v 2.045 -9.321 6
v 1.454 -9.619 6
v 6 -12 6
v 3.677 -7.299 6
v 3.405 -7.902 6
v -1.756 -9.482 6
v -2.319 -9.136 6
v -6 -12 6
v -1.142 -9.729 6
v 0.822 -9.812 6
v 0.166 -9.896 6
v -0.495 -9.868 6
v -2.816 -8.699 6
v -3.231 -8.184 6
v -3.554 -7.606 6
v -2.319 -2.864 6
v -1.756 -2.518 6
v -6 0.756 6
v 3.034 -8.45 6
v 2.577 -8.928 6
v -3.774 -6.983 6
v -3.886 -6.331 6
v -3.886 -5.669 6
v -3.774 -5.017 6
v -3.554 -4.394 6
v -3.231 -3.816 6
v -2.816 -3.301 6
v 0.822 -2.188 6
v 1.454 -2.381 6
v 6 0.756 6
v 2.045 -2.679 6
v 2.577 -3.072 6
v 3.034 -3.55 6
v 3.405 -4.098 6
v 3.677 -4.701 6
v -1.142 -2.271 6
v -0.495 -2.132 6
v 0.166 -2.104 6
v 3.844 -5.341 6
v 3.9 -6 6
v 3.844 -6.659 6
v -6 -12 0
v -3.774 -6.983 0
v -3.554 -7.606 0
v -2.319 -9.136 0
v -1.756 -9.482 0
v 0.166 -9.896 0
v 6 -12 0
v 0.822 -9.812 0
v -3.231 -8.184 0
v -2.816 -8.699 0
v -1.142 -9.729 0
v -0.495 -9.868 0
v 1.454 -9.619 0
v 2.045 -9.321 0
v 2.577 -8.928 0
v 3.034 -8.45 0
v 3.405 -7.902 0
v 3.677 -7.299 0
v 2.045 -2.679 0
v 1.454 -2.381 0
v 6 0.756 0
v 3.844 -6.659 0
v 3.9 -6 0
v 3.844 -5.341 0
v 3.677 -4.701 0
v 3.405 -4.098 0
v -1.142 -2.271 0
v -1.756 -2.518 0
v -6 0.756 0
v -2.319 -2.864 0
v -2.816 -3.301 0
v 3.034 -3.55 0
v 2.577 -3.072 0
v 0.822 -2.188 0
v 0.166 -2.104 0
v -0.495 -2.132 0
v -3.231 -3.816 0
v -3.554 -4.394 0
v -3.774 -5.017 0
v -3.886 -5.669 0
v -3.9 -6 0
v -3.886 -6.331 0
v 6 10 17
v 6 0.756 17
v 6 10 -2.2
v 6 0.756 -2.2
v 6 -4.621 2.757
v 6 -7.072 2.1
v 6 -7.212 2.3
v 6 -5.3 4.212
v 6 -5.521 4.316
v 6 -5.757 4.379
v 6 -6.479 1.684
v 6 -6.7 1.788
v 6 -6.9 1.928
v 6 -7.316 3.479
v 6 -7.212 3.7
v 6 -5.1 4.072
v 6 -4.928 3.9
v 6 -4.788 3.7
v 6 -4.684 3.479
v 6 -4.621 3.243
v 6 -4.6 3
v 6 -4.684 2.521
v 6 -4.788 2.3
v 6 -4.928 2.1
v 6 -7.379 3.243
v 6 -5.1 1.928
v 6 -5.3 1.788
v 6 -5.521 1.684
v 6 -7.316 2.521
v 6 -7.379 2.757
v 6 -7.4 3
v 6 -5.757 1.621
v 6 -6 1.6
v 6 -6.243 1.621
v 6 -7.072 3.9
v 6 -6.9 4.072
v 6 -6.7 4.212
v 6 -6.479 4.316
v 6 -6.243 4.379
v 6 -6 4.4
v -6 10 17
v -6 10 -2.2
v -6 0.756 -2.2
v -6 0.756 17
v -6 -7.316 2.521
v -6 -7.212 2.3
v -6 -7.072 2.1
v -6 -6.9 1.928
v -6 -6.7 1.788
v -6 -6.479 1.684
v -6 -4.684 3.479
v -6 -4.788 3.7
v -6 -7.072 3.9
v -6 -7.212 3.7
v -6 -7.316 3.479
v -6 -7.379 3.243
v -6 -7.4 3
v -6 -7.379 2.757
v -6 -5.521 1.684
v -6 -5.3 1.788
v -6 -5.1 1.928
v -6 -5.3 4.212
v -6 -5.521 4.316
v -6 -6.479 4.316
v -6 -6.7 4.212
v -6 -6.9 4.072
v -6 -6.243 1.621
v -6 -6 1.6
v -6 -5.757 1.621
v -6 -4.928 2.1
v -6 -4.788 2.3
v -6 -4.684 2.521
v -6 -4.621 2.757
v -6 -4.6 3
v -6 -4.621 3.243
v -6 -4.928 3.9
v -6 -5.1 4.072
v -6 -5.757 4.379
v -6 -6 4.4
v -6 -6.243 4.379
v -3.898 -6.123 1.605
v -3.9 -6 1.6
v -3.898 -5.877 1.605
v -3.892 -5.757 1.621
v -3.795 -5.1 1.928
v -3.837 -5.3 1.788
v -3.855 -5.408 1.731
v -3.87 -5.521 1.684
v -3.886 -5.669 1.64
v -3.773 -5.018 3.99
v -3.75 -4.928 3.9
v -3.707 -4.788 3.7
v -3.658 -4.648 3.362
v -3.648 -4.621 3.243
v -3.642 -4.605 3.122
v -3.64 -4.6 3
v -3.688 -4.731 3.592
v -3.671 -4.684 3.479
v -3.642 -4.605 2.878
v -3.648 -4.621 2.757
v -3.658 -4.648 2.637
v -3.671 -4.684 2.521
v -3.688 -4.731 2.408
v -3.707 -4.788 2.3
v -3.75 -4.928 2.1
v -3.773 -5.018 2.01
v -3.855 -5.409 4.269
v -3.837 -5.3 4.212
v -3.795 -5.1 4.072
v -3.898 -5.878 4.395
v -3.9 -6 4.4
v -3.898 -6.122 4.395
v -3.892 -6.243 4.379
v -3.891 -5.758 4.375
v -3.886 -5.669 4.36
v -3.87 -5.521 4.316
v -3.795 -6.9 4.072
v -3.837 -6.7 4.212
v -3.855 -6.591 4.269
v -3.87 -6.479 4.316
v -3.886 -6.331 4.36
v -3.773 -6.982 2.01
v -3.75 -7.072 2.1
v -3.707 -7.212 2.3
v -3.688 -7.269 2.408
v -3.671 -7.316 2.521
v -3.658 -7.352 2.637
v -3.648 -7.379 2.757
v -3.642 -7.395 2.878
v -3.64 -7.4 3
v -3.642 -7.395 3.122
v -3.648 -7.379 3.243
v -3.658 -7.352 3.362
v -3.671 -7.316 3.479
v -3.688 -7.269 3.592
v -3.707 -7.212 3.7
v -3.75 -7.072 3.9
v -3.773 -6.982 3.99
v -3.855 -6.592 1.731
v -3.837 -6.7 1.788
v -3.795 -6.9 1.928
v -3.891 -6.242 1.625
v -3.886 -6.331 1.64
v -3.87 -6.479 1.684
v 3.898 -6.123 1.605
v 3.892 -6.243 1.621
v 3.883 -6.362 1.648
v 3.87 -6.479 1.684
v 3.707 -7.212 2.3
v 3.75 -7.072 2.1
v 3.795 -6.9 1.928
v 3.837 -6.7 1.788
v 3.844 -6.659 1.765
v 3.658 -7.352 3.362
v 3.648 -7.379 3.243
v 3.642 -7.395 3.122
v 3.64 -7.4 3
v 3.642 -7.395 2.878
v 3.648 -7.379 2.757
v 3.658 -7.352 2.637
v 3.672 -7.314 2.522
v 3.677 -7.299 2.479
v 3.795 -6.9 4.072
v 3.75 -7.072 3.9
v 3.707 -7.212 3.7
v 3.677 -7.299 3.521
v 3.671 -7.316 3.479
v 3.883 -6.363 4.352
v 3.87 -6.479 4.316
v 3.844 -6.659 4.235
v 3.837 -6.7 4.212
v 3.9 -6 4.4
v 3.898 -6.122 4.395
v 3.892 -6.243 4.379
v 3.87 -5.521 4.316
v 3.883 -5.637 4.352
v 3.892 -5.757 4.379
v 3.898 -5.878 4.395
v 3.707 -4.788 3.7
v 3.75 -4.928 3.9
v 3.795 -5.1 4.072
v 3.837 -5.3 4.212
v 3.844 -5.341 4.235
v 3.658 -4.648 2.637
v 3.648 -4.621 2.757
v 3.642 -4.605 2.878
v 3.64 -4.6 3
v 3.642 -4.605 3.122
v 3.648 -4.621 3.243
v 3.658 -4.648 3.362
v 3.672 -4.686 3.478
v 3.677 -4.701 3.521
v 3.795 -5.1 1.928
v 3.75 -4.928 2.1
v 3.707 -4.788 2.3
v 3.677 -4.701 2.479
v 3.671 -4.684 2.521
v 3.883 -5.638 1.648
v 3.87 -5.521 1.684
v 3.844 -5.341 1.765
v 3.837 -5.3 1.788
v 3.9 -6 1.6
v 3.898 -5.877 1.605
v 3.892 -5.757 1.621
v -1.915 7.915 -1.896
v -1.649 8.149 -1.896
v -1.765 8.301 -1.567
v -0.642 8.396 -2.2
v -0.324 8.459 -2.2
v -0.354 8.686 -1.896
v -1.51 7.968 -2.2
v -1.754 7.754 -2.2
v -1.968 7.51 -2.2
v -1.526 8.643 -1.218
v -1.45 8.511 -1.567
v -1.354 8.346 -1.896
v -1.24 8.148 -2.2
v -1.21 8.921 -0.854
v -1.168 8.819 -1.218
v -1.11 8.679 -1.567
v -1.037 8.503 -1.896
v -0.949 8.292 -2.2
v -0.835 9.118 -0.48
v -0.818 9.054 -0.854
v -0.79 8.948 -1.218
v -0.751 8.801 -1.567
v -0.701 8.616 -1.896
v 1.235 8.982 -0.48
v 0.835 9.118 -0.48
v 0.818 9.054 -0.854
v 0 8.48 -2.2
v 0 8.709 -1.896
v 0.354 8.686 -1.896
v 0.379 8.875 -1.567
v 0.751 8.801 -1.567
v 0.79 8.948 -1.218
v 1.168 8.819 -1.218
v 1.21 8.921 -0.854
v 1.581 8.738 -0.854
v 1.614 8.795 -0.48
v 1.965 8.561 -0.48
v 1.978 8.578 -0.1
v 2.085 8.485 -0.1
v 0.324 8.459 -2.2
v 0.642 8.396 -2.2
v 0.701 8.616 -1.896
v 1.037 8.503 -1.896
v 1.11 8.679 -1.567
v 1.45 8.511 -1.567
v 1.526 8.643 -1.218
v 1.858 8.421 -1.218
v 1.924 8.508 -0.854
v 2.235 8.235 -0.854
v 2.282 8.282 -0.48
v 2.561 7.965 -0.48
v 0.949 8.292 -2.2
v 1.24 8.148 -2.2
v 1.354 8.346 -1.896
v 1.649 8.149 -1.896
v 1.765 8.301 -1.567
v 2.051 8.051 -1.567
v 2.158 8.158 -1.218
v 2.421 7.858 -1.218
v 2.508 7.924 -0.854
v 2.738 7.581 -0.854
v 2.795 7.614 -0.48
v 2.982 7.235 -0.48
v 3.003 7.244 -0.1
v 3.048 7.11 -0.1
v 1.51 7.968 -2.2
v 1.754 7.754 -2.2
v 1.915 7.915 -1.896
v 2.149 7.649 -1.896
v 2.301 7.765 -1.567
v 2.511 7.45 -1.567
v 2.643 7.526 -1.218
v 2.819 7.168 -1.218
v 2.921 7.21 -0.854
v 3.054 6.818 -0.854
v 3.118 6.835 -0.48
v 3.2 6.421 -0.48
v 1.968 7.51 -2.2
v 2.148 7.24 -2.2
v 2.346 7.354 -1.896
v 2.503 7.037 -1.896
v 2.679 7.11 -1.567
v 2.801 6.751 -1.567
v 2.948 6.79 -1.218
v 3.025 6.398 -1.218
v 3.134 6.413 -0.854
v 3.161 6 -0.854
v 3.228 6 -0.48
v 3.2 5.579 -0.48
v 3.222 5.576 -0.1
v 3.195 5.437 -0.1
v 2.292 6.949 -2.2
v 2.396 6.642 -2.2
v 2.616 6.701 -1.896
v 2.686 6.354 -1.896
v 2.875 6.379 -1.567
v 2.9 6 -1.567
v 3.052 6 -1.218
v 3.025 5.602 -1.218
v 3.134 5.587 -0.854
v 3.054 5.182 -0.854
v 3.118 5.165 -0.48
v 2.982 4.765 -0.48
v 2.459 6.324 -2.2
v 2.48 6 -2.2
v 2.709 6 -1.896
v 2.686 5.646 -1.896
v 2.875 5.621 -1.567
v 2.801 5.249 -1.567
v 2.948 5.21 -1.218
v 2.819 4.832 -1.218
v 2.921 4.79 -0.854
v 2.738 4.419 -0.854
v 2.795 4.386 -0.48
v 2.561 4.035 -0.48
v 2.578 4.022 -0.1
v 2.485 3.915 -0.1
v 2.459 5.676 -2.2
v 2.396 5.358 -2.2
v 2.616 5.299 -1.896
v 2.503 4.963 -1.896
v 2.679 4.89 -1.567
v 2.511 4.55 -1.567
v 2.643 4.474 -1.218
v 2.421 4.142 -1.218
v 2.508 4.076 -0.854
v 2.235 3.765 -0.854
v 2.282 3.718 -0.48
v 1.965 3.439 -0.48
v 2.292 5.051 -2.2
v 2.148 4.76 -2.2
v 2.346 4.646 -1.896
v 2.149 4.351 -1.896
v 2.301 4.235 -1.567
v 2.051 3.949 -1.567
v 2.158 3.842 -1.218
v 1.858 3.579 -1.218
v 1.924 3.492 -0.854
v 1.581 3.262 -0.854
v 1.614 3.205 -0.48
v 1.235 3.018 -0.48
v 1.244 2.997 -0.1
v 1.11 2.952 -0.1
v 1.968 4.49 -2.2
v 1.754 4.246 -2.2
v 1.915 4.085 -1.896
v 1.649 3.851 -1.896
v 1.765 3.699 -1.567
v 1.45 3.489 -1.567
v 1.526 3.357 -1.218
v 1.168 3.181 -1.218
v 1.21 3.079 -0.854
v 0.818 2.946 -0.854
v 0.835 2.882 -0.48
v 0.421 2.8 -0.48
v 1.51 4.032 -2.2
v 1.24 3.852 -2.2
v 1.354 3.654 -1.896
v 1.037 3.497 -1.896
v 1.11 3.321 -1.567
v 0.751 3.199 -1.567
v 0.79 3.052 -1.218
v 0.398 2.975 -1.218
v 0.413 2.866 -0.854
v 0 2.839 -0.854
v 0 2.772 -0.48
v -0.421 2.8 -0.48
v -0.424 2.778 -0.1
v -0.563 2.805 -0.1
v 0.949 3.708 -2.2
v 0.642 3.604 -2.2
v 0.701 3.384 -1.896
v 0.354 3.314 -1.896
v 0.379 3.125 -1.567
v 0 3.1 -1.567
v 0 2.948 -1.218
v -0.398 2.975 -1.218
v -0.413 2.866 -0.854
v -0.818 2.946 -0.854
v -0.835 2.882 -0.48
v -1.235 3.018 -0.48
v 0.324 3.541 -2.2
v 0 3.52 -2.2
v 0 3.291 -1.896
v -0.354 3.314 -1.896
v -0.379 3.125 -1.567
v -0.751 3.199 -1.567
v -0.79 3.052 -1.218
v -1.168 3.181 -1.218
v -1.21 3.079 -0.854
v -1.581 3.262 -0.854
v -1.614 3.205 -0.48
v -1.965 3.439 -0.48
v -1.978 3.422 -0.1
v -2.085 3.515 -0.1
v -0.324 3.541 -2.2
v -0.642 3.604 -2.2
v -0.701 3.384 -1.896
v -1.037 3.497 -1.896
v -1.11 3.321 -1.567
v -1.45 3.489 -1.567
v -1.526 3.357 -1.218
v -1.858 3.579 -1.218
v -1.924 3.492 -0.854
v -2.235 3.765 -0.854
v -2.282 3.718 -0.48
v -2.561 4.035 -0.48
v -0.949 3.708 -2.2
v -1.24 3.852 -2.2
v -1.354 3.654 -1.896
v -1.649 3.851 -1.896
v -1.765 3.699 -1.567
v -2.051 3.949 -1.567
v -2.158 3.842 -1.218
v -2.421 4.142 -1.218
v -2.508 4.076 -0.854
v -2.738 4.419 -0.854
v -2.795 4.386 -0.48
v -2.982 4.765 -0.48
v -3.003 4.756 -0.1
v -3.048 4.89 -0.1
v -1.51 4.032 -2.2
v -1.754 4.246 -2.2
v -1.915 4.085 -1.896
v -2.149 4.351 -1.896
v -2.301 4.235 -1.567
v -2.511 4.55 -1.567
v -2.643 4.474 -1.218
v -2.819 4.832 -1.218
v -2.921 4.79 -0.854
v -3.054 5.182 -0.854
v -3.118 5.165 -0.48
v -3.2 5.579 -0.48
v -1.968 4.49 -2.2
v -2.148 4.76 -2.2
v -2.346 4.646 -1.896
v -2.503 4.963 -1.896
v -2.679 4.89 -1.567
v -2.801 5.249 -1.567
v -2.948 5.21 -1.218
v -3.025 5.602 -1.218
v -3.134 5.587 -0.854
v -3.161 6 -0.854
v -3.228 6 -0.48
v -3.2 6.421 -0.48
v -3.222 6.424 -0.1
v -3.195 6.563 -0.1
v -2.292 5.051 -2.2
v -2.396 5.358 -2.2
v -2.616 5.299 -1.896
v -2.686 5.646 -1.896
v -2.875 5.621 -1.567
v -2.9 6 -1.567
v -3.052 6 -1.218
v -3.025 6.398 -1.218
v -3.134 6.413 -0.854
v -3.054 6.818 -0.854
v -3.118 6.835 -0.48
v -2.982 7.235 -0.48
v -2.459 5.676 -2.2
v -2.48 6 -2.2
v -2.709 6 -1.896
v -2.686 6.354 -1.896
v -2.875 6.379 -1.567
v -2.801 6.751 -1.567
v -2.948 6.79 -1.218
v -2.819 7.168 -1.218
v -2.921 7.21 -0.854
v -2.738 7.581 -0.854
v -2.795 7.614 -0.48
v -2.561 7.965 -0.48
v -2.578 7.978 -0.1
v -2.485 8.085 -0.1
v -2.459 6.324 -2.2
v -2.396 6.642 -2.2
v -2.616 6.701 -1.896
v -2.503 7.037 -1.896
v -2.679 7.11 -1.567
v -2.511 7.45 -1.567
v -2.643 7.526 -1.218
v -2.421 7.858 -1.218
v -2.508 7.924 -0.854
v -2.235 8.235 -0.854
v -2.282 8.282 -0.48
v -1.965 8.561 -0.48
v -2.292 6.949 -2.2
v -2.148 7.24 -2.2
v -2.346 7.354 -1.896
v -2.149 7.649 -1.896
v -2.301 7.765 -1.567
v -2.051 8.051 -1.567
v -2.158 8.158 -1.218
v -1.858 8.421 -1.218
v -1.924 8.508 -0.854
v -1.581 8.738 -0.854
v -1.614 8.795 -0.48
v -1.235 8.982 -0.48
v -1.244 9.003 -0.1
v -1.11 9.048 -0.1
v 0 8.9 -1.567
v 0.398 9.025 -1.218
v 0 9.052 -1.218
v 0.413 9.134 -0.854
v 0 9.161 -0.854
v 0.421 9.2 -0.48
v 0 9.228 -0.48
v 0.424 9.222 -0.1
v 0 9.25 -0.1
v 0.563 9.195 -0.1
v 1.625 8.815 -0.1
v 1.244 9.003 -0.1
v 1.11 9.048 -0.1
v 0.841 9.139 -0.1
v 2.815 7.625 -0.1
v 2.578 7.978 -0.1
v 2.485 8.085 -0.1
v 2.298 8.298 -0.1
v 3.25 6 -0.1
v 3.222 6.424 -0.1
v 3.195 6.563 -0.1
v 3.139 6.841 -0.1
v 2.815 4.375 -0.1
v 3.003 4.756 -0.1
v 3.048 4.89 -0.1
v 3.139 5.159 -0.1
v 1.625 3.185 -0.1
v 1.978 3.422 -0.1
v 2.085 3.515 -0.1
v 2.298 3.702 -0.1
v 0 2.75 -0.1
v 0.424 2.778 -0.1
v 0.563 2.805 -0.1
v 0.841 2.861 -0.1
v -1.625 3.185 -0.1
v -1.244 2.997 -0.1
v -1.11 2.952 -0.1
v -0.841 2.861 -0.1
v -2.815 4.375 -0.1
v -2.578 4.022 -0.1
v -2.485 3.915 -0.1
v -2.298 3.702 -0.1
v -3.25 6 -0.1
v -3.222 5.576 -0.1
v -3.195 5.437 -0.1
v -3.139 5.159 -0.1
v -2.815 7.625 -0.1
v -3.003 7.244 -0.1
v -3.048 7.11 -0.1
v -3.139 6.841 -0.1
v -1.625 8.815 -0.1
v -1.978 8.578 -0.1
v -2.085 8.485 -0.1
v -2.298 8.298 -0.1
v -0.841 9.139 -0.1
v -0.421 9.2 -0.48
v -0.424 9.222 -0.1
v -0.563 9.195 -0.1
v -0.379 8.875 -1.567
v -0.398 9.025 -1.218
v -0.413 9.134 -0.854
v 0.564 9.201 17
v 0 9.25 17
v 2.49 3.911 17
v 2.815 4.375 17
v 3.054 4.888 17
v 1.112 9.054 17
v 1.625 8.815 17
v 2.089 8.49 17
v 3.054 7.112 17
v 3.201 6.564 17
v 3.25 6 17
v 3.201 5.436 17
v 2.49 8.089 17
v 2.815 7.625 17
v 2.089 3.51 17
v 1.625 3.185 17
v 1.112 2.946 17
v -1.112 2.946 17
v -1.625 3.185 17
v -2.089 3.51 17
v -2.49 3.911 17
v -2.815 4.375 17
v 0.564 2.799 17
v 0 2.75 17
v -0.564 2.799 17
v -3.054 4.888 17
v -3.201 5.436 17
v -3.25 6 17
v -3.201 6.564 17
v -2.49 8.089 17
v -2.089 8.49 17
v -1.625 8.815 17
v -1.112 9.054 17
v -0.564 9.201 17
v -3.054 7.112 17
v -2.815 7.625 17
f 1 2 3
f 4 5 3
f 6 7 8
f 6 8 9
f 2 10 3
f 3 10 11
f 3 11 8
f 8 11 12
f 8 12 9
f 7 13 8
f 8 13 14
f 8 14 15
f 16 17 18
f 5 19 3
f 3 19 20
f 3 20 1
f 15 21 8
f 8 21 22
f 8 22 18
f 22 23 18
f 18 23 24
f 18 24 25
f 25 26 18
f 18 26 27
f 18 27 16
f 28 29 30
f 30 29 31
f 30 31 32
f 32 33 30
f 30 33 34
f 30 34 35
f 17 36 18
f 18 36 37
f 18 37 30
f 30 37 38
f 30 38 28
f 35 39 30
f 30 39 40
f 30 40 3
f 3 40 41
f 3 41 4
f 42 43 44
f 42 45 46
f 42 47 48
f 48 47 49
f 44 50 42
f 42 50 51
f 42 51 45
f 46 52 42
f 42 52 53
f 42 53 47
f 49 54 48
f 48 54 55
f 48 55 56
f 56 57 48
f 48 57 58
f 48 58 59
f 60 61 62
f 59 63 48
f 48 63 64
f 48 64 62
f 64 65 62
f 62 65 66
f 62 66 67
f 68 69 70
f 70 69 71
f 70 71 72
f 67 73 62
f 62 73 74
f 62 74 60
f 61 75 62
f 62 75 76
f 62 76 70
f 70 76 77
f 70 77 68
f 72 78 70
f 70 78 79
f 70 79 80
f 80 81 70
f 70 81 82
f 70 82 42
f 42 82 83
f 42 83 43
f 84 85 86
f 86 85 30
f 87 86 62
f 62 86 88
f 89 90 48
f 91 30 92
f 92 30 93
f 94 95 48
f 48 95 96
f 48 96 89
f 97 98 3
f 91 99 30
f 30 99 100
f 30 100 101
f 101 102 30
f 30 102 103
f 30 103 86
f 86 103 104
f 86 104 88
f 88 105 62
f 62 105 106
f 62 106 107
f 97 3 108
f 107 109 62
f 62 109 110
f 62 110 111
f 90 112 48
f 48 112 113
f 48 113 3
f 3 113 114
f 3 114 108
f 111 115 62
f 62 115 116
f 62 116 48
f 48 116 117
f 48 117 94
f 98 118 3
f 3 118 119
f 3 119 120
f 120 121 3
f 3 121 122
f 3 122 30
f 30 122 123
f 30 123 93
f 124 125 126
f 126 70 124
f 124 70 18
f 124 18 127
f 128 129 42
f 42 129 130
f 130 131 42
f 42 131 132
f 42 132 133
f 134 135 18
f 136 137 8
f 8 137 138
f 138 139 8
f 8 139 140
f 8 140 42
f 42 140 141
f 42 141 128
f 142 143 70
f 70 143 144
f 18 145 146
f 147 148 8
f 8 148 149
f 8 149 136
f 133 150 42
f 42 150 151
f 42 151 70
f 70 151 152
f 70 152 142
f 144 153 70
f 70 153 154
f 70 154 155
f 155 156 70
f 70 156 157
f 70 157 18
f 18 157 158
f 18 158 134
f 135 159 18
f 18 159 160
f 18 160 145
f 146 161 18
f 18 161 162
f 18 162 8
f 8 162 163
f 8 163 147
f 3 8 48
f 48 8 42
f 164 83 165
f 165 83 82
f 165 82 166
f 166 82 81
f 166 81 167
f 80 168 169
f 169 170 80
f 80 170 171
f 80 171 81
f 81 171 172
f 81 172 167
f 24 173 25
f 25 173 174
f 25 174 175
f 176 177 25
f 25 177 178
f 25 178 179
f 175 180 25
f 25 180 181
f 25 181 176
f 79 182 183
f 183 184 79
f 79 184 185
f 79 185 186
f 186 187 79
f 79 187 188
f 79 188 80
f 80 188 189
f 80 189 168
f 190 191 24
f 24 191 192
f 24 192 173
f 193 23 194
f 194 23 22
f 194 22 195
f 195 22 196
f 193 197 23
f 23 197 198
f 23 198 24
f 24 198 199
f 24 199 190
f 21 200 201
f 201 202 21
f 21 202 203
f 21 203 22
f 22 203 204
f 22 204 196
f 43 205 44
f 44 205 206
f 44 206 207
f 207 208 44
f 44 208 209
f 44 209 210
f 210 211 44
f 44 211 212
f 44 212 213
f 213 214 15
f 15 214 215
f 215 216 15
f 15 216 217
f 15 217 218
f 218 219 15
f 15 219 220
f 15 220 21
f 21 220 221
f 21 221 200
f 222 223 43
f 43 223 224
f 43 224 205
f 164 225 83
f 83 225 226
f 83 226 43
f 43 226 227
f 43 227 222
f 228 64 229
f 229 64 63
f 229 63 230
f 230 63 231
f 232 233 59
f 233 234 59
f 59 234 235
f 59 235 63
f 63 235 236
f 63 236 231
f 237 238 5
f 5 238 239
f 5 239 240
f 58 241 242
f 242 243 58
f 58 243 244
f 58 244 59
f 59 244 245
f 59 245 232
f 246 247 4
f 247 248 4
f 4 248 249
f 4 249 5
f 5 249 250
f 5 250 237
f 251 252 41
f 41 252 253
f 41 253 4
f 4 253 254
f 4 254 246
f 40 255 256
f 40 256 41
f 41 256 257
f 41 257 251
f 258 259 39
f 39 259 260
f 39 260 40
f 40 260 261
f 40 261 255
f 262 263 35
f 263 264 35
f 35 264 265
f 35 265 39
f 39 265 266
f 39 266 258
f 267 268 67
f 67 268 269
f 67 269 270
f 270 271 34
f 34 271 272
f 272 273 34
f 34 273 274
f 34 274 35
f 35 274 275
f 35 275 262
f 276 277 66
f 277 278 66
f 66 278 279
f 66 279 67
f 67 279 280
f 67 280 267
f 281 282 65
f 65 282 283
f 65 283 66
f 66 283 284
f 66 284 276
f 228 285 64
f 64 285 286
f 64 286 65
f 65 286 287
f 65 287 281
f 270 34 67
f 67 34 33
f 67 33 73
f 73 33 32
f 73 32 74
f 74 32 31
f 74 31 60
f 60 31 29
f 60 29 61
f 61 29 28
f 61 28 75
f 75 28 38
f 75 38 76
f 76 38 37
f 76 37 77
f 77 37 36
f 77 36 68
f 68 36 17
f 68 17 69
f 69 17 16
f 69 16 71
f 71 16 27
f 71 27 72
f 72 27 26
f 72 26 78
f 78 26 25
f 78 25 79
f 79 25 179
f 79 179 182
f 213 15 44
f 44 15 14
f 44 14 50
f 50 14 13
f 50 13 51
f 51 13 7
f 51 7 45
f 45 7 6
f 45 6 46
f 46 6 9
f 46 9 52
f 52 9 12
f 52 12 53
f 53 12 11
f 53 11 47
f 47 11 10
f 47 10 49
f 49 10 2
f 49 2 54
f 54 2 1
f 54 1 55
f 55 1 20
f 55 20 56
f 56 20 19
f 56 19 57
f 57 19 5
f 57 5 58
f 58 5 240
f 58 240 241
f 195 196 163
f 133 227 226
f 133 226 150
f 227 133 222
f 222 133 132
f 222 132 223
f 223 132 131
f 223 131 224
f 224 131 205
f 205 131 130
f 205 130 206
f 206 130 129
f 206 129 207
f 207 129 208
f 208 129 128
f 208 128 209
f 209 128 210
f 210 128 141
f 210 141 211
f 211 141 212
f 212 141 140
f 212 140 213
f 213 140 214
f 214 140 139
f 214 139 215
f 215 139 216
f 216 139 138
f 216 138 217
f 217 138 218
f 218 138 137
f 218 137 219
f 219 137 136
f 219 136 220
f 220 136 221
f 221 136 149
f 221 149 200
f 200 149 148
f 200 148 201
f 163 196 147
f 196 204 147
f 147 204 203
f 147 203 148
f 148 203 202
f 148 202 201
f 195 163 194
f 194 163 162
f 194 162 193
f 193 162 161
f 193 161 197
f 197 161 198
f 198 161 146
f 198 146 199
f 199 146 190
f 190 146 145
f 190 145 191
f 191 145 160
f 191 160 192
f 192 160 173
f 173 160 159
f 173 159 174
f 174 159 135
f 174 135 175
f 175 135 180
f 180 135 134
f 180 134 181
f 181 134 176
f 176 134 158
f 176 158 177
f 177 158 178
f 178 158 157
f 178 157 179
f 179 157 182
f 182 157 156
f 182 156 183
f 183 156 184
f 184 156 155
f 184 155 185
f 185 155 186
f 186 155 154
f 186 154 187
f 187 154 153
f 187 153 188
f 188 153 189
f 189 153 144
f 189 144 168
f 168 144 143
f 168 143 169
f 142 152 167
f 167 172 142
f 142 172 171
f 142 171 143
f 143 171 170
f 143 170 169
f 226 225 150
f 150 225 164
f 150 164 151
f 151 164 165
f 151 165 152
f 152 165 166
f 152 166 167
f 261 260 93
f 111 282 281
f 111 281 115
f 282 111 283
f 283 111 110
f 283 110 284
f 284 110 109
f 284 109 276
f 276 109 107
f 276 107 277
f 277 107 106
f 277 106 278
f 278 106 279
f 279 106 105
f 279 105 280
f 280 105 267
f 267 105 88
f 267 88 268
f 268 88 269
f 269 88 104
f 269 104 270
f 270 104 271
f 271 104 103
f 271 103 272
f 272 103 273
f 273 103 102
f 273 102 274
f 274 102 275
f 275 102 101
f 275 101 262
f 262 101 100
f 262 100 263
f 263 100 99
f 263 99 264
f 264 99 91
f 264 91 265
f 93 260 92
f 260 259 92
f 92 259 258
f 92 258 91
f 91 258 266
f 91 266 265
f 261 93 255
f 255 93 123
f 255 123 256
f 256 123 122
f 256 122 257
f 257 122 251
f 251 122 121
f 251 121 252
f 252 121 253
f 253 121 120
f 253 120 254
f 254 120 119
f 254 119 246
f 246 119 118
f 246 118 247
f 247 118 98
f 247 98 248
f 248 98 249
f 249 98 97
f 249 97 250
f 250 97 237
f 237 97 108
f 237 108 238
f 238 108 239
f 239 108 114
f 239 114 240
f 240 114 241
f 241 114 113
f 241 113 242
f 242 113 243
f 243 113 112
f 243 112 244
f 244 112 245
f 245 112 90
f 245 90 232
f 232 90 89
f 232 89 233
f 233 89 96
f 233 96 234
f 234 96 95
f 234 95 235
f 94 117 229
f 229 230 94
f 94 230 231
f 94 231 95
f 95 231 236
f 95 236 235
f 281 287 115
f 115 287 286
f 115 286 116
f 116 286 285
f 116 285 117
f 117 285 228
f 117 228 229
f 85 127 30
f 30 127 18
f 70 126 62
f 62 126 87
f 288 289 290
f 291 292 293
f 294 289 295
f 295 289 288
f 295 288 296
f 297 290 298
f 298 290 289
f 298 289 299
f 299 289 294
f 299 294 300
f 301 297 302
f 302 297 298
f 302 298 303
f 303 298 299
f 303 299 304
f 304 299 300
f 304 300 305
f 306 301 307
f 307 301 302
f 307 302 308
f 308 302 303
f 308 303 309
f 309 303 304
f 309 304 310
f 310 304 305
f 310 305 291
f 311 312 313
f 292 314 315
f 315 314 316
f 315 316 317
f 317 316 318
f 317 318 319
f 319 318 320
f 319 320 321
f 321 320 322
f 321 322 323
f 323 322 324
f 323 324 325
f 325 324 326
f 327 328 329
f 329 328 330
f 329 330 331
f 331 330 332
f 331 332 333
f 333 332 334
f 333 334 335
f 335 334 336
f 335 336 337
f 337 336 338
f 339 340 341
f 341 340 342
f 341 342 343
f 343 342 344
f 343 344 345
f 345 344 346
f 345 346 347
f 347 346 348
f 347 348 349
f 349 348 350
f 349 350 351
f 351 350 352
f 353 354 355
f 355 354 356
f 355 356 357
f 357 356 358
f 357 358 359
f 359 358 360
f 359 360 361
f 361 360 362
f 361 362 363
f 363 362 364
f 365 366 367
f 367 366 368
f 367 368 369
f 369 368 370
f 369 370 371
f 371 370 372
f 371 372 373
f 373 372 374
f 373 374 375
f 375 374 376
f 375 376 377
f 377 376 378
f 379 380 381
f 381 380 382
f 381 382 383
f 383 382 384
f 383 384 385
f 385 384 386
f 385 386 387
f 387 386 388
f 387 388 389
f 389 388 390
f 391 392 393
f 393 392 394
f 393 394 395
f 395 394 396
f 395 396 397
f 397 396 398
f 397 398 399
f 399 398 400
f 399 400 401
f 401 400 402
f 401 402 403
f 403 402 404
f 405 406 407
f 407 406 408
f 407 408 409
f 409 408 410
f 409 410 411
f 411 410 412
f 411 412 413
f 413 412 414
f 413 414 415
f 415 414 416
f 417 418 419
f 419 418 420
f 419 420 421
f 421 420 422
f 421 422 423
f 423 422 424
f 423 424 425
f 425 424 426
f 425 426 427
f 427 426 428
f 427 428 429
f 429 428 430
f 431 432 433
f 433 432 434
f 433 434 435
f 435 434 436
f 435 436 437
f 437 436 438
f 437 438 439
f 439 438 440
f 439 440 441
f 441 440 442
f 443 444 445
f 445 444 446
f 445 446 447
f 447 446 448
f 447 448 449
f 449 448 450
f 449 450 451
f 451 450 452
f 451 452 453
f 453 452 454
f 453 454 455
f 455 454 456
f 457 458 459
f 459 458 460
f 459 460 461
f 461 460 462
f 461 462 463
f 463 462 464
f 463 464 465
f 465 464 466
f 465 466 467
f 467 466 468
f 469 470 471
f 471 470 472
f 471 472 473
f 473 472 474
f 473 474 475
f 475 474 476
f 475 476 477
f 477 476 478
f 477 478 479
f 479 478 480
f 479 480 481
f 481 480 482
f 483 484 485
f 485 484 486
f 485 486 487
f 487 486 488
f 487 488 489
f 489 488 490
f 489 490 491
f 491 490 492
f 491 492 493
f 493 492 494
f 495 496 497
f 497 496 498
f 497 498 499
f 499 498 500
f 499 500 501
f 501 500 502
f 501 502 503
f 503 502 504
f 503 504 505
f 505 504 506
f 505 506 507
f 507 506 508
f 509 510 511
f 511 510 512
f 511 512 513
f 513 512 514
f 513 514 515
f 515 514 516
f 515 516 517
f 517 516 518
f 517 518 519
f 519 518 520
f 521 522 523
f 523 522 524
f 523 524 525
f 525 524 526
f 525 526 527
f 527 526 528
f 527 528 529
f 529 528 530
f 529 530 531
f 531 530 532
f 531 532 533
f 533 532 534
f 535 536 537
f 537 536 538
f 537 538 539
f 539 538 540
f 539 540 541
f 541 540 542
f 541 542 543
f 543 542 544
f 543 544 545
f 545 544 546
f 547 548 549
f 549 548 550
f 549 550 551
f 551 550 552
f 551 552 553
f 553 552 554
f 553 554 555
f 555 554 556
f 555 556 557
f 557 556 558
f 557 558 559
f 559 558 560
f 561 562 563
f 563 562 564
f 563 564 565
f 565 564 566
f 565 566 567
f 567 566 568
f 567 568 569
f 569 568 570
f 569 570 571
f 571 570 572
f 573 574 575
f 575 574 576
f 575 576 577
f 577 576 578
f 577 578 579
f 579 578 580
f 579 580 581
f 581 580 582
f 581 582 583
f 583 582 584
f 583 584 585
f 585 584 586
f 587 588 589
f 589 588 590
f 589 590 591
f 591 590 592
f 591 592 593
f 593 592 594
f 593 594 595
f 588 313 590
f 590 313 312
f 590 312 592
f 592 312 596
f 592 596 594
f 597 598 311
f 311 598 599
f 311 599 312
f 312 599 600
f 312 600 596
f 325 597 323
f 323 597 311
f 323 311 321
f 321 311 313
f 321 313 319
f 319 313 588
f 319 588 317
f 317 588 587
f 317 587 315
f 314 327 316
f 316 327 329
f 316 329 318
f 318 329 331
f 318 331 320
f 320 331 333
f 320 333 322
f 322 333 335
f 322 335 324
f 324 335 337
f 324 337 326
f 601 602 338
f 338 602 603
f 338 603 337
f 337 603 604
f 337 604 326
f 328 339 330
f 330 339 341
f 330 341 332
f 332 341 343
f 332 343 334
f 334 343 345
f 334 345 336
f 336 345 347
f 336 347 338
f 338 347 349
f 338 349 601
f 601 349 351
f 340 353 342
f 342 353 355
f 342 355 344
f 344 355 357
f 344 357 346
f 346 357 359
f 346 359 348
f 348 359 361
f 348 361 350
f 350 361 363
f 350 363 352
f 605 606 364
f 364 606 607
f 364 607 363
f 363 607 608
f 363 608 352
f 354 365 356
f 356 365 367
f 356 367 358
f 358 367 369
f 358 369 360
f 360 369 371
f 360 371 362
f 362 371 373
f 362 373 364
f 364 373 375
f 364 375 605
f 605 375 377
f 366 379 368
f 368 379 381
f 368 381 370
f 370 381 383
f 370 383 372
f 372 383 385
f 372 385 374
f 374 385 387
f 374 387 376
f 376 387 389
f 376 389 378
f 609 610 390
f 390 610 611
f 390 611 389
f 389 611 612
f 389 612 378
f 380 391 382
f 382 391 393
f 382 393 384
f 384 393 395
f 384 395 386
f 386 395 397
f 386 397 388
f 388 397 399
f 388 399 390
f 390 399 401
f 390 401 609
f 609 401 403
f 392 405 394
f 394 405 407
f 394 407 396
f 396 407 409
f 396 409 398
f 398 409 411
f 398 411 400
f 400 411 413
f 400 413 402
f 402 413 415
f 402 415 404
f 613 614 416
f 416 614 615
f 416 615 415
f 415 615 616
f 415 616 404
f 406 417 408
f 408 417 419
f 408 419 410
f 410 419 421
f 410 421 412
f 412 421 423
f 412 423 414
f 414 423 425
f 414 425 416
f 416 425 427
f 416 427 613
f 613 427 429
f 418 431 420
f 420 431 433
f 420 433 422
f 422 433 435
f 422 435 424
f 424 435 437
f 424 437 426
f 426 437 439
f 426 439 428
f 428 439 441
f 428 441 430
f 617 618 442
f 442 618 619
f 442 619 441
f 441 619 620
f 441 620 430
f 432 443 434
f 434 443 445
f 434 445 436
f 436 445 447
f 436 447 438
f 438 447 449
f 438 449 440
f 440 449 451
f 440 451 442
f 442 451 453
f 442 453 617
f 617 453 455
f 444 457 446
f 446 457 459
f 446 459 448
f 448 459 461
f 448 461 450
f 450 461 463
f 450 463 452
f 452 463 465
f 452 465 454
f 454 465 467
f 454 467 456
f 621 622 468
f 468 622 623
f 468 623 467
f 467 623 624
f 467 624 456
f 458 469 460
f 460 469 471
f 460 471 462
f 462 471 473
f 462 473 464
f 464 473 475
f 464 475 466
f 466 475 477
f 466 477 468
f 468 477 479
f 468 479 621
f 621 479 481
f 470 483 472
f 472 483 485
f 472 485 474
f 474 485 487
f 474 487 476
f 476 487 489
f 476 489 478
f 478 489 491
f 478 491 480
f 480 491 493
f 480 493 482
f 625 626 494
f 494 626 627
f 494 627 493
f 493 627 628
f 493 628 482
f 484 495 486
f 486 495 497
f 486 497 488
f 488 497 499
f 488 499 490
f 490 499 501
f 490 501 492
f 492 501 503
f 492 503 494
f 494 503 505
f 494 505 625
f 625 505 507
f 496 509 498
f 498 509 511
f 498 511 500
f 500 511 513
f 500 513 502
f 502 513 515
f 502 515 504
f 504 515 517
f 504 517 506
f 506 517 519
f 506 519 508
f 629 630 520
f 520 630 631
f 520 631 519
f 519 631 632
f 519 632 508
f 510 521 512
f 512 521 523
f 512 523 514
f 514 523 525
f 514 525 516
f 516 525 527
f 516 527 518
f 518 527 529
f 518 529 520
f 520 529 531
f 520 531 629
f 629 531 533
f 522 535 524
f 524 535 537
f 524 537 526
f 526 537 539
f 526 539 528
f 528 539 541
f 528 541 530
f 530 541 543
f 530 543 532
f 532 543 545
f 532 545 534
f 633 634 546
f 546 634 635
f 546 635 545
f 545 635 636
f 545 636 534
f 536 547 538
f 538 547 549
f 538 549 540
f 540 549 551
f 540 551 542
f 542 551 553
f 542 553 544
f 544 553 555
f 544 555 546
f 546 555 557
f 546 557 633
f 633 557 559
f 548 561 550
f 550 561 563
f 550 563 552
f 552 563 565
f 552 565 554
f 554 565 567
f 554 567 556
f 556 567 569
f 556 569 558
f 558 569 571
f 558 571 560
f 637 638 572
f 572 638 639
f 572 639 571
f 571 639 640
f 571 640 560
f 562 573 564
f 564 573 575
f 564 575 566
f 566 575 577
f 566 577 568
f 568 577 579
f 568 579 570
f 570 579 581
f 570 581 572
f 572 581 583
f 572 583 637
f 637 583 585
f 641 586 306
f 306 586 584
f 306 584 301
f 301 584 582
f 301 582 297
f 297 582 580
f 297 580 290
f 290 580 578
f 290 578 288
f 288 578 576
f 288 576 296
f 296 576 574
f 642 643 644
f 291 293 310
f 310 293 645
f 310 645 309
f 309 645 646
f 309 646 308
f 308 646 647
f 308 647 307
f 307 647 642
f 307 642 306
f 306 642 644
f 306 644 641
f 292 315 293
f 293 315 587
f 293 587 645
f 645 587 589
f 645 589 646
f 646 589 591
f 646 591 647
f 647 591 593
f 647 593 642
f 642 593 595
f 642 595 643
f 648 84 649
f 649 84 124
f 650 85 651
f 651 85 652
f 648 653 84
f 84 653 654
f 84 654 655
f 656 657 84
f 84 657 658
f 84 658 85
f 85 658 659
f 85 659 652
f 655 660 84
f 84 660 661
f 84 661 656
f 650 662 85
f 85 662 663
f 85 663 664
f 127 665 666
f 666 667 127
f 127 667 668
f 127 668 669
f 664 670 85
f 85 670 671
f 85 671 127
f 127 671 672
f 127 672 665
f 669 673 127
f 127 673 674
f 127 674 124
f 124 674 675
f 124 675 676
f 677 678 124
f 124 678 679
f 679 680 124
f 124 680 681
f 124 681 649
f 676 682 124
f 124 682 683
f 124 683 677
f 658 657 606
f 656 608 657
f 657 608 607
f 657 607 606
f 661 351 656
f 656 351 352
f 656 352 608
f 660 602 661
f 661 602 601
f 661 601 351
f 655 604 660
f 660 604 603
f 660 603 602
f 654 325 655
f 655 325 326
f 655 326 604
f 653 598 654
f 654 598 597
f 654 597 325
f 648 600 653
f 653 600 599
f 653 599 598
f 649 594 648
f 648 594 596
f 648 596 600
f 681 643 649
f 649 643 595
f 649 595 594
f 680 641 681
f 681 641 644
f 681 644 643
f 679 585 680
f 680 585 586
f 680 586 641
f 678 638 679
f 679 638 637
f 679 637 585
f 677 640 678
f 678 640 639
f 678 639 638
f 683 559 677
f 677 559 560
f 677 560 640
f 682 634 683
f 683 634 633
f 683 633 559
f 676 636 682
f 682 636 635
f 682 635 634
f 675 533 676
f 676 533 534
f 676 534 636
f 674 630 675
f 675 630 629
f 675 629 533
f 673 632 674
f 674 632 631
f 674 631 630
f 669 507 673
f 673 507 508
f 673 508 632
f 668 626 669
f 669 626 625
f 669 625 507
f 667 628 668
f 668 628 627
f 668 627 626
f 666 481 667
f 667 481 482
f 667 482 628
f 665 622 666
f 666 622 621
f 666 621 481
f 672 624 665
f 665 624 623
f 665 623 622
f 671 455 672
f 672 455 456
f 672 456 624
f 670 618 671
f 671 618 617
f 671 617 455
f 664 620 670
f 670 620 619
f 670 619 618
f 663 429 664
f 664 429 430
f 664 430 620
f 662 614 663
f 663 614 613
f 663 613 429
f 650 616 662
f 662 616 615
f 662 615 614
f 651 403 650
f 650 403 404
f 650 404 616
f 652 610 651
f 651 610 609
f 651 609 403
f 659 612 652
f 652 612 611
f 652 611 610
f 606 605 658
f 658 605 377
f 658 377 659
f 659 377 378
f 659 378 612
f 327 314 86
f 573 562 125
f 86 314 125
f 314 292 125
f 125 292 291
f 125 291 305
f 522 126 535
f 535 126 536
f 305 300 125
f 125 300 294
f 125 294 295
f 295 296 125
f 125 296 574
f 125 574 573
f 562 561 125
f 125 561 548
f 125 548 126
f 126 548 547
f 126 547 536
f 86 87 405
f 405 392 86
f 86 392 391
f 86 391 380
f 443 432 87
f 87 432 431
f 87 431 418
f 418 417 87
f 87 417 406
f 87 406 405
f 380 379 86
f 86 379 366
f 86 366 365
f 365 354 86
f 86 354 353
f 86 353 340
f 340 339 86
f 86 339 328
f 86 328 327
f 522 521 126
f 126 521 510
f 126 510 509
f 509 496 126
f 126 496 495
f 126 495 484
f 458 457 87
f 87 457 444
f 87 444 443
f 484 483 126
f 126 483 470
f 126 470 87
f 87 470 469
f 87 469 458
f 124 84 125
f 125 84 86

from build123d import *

# Parameters (mm, degrees)
ESQUISSE1_W             = 12
ESQUISSE1_H             = 24
BOSS_EXTRU_1_DEPTH      = 6
ESQUISSE3_R             = 3.25
ENL_V_MAT_EXTRU_1_DEPTH = 10
ESQUISSE2_R             = 3.9
ENL_V_MAT_EXTRU_2_DEPTH = 10
ESQUISSE5_R             = 1.4
ENL_V_MAT_EXTRU_3_DEPTH = 22
ESQUISSE6_R             = 4.5
ESQUISSE6_R_2           = 3.25
BOSS_EXTRU_4_DEPTH      = 0.1
ESQUISSE8_W             = 21.223716878
ESQUISSE8_H             = 12.113313322
ENL_V_MAT_EXTRU_4_DEPTH = 19
ESQUISSE9_R             = 1.625
ENL_V_MAT_EXTRU_5_DEPTH = 19
ESQUISSE4_R             = 5
ESQUISSE4_R_2           = 3.25
BOSS_EXTRU_5_DEPTH      = 11
ESQUISSE11_W            = 12
ESQUISSE11_H            = 11.243517906
ESQUISSE11_R            = 3.25
BOSS_EXTRU_6_DEPTH      = 2.2
BOSS_EXTRU_6_DEPTH_BACK = 17
ESQUISSE12_W            = 21.1
ESQUISSE12_H            = 2
ENL_V_MAT_EXTRU_6_DEPTH = 13.1


with BuildPart() as part:
    # Esquisse1 → Boss.-Extru.1 (new body)
    with BuildSketch(Plane.XY):
        Rectangle(ESQUISSE1_W, ESQUISSE1_H)
    extrude(amount=BOSS_EXTRU_1_DEPTH)

    # Esquisse3 → Enlèv. mat.-Extru.1 (cut)
    with BuildSketch(Plane.XY.offset(6)):
        with Locations((0, 6)):
            Circle(ESQUISSE3_R)
    extrude(amount=-ENL_V_MAT_EXTRU_1_DEPTH, mode=Mode.SUBTRACT)

    # Esquisse2 → Enlèv. mat.-Extru.2 (cut)
    with BuildSketch(Plane.XY.offset(6)):
        with Locations((0, -6)):
            Circle(ESQUISSE2_R)
    extrude(amount=-ENL_V_MAT_EXTRU_2_DEPTH, mode=Mode.SUBTRACT)

    # Esquisse5 → Enlèv. mat.-Extru.3 (cut)
    with BuildSketch(Plane(origin=(6, 0, 0), x_dir=(0, 0, -1), z_dir=(1, 0, 0))):
        with Locations((-3, -6)):
            Circle(ESQUISSE5_R)
    extrude(amount=-ENL_V_MAT_EXTRU_3_DEPTH, mode=Mode.SUBTRACT)

    # Esquisse6 → Boss.-Extru.4 (add)
    with BuildSketch(Plane(origin=(0, 0, 0), x_dir=(-1, 0, 0), z_dir=(0, 0, -1))):
        with Locations((0, 6)):
            Circle(ESQUISSE6_R)
        with Locations(Location((0, 6, 0), (0, 0, 180))):
            Circle(ESQUISSE6_R_2, mode=Mode.SUBTRACT)
    extrude(amount=BOSS_EXTRU_4_DEPTH)

    # Esquisse7 → Révolution1 (revolve)
    with BuildSketch(Plane(origin=(0, 0, 0), x_dir=(0, 0, -1), z_dir=(1, 0, 0)), mode=Mode.PRIVATE) as r_volution1_sk:
        with BuildLine():
            Line((0.1, 10.5), (0.1, 9.25))
            ThreePointArc((0.1, 9.25), (2.398097039, 8.298097039), (3.35, 6))
            Line((3.35, 6), (4.6, 6))
            ThreePointArc((4.6, 6), (3.281980515, 9.181980515), (0.1, 10.5))
        make_face()
    revolve(r_volution1_sk.sketch.rotate(Axis((0, 6, -0.1), (0, 0, -1)), 90), axis=Axis((0, 6, -0.1), (0, 0, -1)))

    # Esquisse8 → Enlèv. mat.-Extru.4 (cut)
    with BuildSketch(Plane(origin=(6, 0, 0), x_dir=(0, 0, -1), z_dir=(1, 0, 0))):
        with Locations((12.811858439, 6.195094528)):
            Rectangle(ESQUISSE8_W, ESQUISSE8_H)
    extrude(amount=-ENL_V_MAT_EXTRU_4_DEPTH, mode=Mode.SUBTRACT)

    # Esquisse9 → Enlèv. mat.-Extru.5 (cut)
    with BuildSketch(Plane(origin=(6, 0, 0), x_dir=(0, 0, -1), z_dir=(1, 0, 0))):
        with Locations((-3, 6)):
            Circle(ESQUISSE9_R)
    extrude(amount=-ENL_V_MAT_EXTRU_5_DEPTH, mode=Mode.SUBTRACT)

    # Esquisse4 → Boss.-Extru.5 (add)
    with BuildSketch(Plane.XY.offset(6)):
        with Locations(Location((0, 6, 0), (0, 0, 180))):
            Circle(ESQUISSE4_R)
        with Locations((0, 6)):
            Circle(ESQUISSE4_R_2, mode=Mode.SUBTRACT)
    extrude(amount=BOSS_EXTRU_5_DEPTH)

    # Esquisse11 → Boss.-Extru.6 (add, two sides)
    with BuildSketch(Plane(origin=(0, 0, 0), x_dir=(-1, 0, 0), z_dir=(0, 0, -1))) as boss_extru_6_sk:
        with Locations((0, 6.378241047)):
            Rectangle(ESQUISSE11_W, ESQUISSE11_H)
        with Locations(Location((0, 6, 0), (0, 0, 180))):
            Circle(ESQUISSE11_R, mode=Mode.SUBTRACT)
    extrude(amount=BOSS_EXTRU_6_DEPTH)
    extrude(boss_extru_6_sk.sketch, amount=-BOSS_EXTRU_6_DEPTH_BACK)

    # Esquisse12 → Enlèv. mat.-Extru.6 (cut)
    with BuildSketch(Plane.ZY.offset(6)):
        with Locations((6.45, 11)):
            Rectangle(ESQUISSE12_W, ESQUISSE12_H)
    extrude(amount=-ENL_V_MAT_EXTRU_6_DEPTH, mode=Mode.SUBTRACT)


solid = part.part
